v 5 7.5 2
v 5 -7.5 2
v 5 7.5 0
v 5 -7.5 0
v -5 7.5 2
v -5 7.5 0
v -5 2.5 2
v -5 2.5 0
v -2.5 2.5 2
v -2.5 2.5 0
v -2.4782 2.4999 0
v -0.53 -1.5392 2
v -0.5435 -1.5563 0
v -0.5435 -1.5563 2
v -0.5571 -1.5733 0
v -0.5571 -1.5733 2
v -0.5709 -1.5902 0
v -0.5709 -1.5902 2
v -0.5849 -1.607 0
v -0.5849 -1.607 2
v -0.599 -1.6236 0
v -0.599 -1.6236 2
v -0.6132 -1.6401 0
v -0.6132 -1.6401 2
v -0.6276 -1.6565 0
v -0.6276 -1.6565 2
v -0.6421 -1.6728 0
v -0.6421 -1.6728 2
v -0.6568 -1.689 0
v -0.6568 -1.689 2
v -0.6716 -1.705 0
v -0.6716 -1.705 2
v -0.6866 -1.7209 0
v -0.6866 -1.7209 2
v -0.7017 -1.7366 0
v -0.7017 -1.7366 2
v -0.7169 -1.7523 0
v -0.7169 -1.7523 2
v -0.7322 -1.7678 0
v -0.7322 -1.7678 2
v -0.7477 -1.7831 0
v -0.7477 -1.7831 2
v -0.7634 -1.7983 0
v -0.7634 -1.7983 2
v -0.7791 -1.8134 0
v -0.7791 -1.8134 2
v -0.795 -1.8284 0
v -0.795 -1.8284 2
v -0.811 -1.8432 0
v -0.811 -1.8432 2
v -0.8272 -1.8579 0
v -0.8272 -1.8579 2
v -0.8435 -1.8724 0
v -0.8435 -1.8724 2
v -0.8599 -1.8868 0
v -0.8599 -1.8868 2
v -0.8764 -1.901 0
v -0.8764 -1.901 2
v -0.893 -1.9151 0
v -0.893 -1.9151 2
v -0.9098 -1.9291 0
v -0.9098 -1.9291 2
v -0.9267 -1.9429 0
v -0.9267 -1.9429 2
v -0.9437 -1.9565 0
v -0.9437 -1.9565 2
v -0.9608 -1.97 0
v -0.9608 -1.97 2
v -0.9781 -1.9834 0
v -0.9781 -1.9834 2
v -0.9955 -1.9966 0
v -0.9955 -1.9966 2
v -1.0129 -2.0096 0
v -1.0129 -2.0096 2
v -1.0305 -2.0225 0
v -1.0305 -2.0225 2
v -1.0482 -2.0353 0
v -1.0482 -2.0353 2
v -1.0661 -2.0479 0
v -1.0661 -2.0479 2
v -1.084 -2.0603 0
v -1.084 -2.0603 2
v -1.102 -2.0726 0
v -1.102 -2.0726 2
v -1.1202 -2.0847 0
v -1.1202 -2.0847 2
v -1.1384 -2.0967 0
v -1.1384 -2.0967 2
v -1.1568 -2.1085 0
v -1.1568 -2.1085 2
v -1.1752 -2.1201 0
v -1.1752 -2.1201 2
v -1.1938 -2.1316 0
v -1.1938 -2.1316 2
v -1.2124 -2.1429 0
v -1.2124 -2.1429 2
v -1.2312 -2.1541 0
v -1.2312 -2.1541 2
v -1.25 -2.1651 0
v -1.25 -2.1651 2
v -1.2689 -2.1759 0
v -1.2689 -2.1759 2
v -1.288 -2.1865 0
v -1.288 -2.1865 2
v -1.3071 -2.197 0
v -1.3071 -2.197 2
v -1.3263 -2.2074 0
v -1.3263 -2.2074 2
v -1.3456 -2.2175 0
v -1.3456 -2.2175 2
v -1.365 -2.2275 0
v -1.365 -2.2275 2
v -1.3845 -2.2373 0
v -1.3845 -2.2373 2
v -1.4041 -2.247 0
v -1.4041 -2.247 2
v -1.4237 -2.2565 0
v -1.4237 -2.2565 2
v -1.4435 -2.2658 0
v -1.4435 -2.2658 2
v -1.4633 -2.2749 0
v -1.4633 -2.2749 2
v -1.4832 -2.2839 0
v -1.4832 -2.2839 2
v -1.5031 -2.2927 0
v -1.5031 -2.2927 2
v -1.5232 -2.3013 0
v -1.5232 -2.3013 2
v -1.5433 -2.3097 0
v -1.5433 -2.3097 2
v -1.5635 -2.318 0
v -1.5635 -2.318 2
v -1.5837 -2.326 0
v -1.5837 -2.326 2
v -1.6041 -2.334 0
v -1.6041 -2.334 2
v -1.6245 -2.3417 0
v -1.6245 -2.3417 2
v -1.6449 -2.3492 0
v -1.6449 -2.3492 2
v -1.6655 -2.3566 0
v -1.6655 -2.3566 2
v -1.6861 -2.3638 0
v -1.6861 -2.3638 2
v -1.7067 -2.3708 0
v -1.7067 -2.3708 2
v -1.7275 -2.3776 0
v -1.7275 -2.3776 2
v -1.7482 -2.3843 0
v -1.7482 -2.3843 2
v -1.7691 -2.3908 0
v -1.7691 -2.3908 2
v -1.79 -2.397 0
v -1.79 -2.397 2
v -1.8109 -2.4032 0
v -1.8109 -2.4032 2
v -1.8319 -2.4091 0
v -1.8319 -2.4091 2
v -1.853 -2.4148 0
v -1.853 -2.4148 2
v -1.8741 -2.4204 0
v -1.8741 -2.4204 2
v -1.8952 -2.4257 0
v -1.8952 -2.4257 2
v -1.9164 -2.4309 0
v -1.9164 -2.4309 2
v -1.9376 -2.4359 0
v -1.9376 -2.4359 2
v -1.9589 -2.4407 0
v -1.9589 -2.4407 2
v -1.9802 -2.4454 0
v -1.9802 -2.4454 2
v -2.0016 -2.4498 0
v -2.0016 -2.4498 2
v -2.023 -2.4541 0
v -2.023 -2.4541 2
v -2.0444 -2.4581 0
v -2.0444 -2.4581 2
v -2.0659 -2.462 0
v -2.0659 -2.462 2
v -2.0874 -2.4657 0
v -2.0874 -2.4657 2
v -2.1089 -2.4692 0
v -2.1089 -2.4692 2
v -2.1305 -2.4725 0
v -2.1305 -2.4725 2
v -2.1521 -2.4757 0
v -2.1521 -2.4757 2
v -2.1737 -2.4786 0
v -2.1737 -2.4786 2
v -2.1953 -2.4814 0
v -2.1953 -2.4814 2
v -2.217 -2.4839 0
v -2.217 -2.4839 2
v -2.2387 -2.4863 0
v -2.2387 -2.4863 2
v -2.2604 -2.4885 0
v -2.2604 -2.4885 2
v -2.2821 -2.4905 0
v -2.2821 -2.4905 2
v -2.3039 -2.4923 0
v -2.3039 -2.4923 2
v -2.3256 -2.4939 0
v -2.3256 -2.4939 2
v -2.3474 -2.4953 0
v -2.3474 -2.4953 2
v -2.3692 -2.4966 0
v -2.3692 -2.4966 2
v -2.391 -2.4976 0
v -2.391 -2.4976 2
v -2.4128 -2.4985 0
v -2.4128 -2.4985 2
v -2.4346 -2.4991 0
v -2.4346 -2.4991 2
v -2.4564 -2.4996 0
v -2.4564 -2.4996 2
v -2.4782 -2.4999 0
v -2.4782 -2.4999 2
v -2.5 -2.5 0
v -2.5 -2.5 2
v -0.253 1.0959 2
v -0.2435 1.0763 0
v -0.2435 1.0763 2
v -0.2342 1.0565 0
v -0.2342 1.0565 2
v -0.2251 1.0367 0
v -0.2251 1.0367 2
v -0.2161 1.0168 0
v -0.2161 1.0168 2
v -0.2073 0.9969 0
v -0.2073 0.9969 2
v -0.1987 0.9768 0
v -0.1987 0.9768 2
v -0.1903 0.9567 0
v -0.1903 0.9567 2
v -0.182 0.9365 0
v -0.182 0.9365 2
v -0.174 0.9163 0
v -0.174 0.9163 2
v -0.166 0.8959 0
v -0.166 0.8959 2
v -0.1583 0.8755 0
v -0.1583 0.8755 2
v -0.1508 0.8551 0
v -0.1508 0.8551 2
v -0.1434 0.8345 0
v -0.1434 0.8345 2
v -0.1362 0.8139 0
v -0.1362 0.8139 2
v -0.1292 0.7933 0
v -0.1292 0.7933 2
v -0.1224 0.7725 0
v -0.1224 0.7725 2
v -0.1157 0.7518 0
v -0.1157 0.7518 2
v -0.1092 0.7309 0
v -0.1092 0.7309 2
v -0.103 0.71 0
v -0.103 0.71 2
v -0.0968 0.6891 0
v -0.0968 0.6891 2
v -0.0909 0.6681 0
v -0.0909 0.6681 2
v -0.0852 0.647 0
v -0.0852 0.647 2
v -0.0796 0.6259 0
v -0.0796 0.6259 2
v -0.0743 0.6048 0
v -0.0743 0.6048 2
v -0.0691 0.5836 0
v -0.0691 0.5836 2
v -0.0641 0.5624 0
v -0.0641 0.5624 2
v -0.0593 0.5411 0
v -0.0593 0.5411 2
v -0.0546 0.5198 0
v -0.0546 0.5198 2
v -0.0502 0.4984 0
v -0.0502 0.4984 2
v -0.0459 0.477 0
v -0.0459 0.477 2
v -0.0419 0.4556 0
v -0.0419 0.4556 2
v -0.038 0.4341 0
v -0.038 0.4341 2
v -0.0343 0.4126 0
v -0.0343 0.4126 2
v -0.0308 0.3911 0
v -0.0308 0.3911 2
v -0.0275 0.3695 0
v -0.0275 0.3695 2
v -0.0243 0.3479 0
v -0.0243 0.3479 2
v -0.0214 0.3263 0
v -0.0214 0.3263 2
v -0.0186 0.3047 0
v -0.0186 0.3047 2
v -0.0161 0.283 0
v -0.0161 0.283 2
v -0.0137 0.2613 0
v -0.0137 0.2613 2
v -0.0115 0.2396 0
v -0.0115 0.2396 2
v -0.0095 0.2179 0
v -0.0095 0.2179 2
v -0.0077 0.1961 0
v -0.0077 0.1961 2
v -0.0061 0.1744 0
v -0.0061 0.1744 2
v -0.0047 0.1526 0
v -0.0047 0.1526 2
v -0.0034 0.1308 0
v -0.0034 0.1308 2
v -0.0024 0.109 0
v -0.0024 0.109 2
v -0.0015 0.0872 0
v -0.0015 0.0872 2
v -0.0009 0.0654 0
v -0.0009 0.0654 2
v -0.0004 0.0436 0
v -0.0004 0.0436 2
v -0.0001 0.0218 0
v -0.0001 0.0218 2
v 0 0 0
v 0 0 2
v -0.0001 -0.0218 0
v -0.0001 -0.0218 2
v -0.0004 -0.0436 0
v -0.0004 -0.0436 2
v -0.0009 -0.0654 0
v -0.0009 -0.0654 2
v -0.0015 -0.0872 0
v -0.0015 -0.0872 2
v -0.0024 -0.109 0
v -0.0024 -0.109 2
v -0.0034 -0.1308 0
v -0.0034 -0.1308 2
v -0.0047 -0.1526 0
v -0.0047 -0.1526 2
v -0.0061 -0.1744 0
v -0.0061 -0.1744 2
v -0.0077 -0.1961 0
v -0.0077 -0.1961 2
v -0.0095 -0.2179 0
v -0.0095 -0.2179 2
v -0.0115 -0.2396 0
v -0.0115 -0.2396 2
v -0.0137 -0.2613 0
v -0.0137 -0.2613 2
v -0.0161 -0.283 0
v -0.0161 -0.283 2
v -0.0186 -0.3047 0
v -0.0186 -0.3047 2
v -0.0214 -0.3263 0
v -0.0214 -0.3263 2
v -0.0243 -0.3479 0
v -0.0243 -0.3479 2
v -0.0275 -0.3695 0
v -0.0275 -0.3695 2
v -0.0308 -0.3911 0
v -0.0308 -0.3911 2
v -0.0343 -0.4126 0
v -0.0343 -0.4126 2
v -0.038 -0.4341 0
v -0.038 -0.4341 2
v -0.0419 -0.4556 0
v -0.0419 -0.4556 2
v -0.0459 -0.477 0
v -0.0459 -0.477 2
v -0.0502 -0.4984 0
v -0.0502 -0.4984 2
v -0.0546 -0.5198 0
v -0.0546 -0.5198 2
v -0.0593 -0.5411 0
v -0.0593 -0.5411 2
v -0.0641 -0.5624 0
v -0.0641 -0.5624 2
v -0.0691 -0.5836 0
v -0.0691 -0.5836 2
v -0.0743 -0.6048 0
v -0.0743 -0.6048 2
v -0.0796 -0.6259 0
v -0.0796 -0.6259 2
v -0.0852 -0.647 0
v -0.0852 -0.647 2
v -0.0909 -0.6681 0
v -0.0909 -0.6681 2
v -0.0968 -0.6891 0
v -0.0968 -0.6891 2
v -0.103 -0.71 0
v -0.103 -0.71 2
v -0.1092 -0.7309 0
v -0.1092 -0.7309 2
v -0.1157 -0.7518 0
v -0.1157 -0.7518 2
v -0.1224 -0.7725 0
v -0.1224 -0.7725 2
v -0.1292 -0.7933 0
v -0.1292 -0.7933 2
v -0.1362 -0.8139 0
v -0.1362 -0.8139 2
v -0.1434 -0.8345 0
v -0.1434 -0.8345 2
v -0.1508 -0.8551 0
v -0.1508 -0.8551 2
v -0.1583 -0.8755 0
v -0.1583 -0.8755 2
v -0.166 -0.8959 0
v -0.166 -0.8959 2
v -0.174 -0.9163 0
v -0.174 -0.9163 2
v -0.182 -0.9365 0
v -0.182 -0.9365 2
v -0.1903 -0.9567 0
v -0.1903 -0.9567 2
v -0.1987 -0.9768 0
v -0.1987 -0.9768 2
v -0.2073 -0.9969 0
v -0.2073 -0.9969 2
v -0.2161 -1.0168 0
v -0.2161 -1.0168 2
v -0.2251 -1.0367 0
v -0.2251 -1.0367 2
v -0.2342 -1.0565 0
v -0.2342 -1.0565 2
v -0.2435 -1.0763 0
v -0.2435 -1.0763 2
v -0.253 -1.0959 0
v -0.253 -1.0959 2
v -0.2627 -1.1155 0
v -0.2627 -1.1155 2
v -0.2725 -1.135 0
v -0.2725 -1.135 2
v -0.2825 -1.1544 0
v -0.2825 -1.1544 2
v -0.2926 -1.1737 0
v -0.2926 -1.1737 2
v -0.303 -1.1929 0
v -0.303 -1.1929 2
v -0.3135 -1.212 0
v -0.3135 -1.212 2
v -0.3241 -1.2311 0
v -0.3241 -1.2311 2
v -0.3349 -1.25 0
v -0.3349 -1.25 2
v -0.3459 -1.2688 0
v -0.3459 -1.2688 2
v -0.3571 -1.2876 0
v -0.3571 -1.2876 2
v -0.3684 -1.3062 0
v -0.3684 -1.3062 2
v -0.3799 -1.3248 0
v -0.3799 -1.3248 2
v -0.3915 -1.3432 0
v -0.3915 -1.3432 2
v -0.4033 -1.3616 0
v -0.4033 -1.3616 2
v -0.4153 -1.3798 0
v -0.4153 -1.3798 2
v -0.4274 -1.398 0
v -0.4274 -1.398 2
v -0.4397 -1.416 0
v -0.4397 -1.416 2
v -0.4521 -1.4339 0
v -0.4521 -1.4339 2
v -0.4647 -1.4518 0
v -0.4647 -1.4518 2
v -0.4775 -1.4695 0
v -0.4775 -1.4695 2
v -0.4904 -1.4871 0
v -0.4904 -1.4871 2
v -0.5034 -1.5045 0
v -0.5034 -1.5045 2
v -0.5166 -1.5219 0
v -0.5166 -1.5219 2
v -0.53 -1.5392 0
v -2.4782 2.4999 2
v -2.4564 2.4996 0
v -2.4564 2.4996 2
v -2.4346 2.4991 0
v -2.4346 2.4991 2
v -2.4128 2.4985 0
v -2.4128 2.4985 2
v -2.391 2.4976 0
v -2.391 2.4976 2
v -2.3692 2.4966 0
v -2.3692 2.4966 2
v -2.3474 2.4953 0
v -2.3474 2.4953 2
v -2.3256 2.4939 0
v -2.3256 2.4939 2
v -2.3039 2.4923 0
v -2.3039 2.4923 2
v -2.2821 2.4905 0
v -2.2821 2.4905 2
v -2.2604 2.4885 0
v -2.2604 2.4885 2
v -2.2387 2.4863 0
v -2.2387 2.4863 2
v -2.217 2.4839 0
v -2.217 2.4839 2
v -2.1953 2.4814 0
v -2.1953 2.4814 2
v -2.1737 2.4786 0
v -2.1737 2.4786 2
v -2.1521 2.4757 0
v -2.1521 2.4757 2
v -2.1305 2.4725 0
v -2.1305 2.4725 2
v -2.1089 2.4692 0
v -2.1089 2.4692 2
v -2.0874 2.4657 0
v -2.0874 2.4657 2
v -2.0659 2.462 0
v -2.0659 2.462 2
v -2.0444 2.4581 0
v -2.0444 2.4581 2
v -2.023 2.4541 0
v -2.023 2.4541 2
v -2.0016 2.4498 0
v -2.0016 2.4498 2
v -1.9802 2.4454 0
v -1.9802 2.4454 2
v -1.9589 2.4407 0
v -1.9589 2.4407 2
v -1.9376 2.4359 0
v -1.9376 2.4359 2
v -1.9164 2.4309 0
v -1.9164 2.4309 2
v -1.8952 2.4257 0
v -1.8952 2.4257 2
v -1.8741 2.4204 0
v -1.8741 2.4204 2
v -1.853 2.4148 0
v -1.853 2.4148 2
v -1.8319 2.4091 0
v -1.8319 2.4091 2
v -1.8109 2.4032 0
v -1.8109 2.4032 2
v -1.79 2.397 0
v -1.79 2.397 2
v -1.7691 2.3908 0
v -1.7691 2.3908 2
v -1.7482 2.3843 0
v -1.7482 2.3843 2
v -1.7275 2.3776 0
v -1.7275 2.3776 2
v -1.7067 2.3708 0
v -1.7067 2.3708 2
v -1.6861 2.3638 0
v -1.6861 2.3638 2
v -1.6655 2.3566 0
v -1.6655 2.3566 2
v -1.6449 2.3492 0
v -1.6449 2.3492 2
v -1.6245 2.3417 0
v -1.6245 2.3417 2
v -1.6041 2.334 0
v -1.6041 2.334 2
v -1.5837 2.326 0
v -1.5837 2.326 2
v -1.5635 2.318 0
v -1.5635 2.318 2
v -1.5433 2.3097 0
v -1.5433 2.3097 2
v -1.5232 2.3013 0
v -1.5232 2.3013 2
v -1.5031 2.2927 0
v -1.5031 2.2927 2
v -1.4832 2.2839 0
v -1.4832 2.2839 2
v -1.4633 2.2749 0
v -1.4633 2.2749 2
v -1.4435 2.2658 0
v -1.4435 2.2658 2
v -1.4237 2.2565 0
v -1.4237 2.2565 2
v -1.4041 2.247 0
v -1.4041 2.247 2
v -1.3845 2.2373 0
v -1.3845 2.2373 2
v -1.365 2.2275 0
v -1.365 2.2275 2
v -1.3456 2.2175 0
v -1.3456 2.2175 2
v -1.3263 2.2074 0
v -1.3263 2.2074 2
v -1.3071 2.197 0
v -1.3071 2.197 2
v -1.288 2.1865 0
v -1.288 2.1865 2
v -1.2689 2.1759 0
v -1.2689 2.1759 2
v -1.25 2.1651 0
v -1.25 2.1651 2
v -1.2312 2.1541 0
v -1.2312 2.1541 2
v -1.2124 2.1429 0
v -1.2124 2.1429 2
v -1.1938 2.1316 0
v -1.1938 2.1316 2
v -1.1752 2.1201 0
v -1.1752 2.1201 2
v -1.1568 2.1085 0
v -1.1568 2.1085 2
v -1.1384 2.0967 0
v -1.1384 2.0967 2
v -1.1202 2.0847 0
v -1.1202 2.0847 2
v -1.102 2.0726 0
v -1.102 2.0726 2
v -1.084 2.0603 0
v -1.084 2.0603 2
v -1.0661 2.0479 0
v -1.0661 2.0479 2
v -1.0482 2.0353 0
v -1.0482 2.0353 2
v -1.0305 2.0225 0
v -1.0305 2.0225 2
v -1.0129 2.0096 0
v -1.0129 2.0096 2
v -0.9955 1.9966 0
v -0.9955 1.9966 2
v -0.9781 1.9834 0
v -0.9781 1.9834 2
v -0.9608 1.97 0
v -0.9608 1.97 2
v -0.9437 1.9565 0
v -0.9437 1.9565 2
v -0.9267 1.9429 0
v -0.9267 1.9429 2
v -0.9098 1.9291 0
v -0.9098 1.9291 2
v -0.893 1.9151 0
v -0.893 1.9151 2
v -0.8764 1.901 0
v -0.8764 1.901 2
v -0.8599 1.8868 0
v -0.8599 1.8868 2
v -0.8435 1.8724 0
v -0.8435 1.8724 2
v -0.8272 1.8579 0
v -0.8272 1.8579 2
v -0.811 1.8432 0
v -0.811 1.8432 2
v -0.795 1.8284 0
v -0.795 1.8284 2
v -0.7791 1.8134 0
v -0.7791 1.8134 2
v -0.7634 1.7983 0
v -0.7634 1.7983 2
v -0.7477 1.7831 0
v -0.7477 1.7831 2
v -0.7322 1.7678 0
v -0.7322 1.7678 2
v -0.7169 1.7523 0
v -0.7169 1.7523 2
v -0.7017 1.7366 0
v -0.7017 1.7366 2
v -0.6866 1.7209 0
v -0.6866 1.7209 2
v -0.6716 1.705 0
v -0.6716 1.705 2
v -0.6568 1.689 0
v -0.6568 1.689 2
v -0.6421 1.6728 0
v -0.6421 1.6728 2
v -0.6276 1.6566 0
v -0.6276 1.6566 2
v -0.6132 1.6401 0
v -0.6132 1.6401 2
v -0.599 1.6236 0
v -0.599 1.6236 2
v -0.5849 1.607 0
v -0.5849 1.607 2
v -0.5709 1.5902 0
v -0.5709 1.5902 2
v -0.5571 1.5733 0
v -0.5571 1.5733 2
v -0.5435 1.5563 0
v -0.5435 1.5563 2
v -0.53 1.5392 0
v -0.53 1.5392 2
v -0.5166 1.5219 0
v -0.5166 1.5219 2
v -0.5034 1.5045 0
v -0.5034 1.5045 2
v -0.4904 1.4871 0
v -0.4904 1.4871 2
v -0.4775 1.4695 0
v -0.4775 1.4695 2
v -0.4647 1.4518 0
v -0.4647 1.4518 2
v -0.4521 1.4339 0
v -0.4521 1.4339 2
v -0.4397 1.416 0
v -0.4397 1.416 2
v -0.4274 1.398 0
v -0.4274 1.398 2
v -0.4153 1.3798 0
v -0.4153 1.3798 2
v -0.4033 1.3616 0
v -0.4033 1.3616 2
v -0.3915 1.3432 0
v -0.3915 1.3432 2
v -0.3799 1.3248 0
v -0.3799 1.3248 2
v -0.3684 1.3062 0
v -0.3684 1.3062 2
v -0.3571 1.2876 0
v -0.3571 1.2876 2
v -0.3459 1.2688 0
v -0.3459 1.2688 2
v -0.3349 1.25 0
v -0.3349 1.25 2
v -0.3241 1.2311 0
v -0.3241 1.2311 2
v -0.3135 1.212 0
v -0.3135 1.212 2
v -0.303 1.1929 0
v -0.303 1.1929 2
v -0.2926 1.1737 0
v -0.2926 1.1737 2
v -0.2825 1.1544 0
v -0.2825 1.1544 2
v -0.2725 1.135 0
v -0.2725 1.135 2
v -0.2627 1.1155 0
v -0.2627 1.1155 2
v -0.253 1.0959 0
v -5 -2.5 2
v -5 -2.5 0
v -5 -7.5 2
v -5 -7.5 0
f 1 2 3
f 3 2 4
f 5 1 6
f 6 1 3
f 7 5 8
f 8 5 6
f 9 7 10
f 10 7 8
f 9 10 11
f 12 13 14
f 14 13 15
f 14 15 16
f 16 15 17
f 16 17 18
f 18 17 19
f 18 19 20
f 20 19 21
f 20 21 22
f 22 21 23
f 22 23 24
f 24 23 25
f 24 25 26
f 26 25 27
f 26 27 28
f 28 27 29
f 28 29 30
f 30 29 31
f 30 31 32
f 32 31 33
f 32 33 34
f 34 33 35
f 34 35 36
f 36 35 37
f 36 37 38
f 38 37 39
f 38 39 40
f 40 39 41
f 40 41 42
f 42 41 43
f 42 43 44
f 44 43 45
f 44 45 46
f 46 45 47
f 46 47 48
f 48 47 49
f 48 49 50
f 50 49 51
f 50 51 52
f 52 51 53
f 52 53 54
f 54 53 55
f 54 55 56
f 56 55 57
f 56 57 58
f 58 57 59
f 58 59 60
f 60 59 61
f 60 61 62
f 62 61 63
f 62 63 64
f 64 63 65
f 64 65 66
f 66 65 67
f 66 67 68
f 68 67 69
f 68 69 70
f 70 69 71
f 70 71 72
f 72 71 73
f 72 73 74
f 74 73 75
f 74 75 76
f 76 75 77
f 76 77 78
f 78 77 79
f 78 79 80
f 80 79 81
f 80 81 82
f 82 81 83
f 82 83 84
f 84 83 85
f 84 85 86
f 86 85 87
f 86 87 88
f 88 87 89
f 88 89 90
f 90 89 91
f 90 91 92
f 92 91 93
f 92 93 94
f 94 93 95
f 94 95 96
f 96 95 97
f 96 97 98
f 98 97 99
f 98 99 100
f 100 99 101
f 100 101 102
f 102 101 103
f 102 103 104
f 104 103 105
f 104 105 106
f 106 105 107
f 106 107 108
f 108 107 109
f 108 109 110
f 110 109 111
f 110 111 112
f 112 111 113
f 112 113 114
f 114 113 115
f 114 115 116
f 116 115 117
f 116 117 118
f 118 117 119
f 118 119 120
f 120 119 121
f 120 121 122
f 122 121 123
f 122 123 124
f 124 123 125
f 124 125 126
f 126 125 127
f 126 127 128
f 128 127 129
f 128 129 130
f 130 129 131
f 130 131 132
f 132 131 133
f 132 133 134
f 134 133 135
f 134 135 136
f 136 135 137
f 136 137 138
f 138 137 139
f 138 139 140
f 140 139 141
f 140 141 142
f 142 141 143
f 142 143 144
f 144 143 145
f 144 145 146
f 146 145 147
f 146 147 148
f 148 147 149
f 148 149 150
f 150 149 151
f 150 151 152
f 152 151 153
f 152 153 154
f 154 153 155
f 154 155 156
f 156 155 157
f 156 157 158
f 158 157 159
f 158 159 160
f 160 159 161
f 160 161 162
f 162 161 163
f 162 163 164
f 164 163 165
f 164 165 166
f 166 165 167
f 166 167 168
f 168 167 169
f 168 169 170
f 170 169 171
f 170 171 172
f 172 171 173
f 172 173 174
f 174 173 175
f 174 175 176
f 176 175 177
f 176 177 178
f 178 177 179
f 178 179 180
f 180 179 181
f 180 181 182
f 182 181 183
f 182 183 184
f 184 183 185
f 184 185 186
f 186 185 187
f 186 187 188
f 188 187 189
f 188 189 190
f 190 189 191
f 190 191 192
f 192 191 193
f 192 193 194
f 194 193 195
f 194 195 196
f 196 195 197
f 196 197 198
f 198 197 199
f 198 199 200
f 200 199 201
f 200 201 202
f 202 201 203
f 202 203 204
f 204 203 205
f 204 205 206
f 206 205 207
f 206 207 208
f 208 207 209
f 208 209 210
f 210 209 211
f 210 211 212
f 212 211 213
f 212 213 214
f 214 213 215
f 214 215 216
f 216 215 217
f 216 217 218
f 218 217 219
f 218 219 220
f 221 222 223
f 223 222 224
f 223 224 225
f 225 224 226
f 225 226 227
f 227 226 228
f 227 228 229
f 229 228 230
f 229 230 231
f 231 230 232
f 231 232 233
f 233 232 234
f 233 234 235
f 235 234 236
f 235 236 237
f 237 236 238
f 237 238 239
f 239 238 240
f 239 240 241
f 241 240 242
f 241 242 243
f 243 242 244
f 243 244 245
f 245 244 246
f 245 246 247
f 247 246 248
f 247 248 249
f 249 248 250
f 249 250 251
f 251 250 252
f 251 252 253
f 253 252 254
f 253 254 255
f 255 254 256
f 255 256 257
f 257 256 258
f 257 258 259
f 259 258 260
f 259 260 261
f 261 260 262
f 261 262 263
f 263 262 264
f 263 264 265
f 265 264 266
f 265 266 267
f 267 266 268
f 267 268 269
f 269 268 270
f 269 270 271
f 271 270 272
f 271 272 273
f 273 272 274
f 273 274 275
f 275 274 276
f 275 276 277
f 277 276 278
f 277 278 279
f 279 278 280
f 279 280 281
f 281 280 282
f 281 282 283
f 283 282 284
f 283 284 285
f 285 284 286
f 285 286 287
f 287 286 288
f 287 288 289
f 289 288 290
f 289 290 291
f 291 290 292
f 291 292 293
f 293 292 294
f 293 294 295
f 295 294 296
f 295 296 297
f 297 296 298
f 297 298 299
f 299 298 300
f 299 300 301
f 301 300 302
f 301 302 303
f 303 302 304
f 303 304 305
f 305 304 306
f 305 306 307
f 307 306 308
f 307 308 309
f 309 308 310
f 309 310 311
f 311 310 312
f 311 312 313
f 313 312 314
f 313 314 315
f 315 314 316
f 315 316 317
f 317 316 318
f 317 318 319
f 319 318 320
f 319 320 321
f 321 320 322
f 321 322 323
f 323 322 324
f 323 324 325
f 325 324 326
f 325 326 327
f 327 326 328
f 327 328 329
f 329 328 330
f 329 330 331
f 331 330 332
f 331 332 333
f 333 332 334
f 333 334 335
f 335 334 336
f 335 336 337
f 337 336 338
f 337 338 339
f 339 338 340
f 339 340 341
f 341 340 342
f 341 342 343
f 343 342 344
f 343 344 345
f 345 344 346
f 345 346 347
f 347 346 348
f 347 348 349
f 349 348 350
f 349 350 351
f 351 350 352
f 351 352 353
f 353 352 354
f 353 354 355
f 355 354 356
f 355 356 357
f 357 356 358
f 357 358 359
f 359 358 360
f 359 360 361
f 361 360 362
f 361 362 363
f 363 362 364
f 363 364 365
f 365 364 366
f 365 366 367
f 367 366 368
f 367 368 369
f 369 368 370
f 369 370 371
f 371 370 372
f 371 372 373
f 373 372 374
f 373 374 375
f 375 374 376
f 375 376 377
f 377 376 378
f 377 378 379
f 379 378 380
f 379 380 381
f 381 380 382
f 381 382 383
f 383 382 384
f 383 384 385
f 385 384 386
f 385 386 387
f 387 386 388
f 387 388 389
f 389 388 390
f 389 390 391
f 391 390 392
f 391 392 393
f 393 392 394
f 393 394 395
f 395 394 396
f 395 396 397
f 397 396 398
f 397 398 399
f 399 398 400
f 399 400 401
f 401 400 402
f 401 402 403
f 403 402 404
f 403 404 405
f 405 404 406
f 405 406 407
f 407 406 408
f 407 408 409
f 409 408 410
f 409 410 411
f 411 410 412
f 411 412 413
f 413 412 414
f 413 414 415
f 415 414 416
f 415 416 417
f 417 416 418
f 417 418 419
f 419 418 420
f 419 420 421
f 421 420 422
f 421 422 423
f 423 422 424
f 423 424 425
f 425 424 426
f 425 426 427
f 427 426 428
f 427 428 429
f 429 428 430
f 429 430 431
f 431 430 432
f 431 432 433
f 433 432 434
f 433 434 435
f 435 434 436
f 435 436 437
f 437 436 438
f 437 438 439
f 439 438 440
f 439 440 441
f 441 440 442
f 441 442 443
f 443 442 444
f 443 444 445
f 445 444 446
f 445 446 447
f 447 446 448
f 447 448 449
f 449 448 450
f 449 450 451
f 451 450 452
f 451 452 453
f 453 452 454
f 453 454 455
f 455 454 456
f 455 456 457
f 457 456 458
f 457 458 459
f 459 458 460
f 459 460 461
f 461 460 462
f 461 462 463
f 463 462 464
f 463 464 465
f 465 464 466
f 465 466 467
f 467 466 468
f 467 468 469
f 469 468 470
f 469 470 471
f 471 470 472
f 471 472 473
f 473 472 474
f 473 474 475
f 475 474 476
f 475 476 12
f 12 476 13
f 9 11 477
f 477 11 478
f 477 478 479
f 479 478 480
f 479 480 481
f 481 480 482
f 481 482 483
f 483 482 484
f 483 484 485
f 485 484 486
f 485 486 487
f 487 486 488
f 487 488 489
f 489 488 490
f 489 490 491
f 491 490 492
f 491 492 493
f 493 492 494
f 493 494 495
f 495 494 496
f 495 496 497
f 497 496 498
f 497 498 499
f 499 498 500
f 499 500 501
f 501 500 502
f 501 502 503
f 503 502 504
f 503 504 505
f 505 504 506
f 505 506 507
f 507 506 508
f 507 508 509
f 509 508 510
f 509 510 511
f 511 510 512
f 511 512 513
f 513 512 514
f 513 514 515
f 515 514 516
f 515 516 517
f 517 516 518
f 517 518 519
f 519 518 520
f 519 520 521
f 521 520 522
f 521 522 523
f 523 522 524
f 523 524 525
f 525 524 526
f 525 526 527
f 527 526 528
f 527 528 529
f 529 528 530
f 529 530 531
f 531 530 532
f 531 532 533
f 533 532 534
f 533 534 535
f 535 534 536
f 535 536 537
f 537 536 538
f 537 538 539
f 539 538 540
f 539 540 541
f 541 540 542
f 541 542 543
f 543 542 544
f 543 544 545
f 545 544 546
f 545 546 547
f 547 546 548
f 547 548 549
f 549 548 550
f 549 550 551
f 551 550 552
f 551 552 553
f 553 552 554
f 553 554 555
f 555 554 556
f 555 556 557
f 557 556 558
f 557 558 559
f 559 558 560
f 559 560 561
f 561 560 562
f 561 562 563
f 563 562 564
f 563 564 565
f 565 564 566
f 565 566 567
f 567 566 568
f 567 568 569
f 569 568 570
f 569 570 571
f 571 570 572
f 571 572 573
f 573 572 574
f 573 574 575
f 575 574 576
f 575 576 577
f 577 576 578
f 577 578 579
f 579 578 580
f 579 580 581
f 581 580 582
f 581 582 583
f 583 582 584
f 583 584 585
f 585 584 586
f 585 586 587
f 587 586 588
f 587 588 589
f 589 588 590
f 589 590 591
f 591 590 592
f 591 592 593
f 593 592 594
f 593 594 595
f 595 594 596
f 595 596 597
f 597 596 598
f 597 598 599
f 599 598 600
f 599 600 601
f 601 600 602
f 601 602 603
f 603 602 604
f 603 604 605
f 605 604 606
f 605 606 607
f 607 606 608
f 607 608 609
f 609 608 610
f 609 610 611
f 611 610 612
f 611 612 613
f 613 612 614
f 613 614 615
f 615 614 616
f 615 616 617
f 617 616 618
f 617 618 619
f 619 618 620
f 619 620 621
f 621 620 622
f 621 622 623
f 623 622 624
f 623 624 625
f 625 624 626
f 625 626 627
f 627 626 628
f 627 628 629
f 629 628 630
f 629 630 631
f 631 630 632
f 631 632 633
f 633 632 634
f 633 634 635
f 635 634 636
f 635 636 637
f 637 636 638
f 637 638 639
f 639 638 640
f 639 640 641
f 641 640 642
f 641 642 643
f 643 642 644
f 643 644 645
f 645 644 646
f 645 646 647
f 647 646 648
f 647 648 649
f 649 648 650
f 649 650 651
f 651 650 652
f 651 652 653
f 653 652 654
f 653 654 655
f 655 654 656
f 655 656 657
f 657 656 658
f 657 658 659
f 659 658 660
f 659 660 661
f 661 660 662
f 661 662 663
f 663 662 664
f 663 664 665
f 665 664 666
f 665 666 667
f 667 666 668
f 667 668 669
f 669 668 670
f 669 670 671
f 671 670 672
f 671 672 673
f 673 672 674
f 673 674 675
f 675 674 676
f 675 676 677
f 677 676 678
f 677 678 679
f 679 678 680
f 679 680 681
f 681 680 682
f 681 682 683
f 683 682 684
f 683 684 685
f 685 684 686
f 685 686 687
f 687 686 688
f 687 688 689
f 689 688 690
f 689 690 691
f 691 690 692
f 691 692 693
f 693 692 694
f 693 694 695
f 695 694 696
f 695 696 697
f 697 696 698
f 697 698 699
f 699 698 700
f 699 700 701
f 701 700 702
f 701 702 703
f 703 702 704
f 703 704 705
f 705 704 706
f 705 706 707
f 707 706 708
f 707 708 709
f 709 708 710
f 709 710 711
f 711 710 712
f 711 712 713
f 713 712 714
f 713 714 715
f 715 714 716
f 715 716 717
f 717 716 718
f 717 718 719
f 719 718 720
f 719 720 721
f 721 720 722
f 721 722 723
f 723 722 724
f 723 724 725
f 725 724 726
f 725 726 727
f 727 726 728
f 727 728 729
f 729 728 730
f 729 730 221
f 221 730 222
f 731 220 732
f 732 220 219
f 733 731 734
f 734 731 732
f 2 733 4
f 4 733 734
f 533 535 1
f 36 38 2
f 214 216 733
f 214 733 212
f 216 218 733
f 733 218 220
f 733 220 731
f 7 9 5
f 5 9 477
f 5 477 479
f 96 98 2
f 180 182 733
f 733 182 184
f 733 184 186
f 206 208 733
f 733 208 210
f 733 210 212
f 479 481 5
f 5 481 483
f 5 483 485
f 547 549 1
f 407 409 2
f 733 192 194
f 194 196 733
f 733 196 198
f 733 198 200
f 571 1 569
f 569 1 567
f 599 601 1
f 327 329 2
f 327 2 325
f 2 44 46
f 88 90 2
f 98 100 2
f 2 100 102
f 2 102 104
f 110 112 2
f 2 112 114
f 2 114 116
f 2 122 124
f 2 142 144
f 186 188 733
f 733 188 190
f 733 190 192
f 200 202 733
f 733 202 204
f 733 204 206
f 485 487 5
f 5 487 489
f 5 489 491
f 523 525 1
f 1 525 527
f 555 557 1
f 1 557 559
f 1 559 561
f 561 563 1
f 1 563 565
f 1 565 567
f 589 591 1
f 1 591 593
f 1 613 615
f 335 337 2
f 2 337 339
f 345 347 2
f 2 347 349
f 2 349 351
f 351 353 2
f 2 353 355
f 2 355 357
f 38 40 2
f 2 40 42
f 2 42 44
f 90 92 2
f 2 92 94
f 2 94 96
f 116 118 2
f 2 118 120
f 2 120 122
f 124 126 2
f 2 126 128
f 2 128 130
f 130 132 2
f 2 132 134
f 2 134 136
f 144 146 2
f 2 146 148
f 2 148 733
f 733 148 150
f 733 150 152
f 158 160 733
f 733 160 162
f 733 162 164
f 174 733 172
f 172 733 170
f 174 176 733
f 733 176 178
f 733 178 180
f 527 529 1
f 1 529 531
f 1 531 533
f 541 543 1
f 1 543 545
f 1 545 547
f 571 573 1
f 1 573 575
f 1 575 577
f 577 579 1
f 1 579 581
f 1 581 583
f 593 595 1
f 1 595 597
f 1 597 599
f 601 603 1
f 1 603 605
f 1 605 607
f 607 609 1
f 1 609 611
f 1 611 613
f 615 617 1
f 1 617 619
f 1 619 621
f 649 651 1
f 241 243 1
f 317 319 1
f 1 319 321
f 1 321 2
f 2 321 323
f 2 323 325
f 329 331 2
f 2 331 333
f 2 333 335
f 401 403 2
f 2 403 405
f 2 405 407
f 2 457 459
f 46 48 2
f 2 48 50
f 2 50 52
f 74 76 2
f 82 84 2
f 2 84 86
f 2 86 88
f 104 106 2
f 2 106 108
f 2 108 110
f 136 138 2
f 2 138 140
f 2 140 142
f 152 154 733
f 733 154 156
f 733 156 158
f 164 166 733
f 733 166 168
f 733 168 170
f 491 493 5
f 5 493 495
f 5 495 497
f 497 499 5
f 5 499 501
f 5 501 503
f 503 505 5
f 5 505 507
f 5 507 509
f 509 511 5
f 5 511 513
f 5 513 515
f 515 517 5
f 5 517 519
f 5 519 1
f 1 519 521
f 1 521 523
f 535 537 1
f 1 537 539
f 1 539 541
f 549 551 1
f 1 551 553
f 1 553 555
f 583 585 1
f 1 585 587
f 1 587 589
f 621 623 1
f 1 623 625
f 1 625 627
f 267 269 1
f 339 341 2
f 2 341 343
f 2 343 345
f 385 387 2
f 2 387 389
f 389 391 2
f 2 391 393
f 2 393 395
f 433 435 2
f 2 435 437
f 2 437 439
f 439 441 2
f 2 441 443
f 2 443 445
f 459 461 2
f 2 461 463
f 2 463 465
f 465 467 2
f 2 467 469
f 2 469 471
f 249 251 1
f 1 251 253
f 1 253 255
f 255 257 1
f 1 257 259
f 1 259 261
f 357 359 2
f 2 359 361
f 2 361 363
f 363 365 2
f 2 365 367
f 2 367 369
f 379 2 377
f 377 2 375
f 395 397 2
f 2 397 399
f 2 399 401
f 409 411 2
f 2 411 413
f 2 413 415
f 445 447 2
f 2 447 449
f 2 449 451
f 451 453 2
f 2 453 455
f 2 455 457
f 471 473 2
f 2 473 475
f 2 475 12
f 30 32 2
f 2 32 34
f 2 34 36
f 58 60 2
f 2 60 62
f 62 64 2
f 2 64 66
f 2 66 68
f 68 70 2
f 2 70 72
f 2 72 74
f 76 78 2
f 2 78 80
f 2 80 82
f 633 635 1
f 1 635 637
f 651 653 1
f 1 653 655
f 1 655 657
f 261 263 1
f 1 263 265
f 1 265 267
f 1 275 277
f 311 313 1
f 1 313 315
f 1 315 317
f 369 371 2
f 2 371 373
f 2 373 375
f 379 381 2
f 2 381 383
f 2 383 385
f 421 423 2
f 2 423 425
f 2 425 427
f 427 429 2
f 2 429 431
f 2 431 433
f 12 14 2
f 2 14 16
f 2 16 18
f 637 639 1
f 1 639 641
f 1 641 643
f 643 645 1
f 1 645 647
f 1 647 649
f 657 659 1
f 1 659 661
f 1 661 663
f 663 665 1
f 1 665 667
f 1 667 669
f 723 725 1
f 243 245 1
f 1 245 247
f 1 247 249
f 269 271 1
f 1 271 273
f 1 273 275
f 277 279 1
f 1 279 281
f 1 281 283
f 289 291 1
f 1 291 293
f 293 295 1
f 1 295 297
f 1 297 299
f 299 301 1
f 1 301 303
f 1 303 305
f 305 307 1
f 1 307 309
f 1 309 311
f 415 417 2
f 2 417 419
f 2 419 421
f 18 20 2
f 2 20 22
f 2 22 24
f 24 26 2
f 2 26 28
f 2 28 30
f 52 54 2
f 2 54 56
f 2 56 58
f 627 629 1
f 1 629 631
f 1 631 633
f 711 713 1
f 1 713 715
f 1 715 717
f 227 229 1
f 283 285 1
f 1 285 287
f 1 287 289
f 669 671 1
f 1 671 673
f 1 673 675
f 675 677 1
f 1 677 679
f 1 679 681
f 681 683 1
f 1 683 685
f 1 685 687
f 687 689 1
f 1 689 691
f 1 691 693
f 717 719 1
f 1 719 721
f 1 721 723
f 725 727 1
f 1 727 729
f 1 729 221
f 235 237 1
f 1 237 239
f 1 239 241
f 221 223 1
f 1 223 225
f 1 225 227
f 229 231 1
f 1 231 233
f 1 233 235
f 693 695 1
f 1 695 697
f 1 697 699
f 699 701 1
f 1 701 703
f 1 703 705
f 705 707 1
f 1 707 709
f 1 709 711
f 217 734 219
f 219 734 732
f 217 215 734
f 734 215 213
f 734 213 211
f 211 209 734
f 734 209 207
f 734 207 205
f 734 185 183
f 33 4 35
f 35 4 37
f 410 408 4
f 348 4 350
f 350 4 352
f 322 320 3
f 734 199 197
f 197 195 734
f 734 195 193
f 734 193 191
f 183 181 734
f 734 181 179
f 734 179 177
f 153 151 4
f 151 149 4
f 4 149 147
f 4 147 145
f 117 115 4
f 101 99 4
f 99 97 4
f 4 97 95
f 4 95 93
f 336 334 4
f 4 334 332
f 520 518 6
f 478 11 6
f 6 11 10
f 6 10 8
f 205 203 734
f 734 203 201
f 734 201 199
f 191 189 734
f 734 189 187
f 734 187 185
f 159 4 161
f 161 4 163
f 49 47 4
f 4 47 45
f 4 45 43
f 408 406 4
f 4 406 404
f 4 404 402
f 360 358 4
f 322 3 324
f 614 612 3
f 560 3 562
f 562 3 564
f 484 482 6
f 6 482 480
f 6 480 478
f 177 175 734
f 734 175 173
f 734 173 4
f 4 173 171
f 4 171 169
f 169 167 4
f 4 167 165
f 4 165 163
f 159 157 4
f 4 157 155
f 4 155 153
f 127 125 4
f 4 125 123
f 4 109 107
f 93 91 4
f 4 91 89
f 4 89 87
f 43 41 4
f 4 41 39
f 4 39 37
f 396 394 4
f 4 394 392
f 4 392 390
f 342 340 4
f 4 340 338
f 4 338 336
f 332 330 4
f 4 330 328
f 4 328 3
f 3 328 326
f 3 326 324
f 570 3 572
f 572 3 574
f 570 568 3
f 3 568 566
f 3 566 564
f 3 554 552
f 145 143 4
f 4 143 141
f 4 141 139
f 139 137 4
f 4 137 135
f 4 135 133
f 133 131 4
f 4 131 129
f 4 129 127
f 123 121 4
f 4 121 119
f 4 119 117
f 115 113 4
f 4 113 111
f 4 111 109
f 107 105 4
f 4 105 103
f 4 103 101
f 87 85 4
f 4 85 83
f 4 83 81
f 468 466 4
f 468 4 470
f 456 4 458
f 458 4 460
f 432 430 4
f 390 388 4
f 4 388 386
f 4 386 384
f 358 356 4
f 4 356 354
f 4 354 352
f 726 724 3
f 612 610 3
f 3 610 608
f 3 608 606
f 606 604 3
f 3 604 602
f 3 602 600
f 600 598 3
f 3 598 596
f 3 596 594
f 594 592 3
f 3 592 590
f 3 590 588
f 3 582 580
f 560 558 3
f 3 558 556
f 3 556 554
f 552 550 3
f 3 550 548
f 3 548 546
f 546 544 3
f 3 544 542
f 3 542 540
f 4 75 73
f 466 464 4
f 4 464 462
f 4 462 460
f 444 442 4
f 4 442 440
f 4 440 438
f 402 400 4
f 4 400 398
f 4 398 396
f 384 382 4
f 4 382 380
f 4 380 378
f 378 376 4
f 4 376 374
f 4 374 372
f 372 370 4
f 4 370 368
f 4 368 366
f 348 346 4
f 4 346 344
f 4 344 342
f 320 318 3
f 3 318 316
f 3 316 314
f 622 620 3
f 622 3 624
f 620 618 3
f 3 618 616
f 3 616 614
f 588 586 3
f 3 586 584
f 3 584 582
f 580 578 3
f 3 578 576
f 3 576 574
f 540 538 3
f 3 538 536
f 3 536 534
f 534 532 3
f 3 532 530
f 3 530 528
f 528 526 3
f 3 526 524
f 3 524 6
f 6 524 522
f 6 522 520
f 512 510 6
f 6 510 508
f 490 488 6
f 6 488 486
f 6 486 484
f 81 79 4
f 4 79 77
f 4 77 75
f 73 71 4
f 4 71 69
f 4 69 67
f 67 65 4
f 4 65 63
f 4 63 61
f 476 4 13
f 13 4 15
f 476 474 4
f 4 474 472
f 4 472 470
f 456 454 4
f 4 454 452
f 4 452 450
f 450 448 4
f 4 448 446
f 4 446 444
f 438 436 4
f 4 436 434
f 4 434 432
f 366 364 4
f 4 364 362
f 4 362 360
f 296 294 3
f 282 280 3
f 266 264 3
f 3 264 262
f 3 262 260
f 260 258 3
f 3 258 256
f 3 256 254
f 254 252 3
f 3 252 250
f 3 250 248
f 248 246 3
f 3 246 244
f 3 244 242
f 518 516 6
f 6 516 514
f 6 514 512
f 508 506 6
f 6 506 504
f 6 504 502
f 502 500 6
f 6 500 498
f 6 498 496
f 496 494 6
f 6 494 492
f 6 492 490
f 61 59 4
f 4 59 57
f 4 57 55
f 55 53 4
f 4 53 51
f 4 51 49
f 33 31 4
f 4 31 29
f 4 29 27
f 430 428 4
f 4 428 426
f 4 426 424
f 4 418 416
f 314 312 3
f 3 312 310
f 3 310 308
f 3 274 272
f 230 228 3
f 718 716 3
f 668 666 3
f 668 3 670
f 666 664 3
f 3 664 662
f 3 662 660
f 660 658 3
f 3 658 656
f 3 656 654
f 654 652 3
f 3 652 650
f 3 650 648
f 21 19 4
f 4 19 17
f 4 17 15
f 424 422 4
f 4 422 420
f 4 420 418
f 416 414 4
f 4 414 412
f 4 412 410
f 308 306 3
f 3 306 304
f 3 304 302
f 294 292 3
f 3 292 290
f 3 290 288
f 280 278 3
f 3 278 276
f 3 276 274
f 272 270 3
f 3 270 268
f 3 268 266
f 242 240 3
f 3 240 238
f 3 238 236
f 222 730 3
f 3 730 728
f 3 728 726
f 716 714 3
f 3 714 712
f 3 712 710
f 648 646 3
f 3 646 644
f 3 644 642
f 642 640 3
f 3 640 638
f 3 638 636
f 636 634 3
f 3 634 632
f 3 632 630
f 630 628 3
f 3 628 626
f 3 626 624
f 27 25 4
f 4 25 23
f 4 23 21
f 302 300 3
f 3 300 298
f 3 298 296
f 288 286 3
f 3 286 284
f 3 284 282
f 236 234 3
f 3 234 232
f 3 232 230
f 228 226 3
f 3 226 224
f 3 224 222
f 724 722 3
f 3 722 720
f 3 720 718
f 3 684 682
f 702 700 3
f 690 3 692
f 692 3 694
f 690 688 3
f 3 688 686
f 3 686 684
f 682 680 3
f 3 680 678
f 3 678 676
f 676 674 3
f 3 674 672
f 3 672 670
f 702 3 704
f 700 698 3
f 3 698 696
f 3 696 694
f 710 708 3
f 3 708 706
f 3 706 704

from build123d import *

# Parameters (mm, degrees)
BOSS_EXTRUDE1_DEPTH = 2


with BuildPart() as part:
    # Sketch1 → Boss-Extrude1 (new body)
    with BuildSketch(Plane.XY):
        with BuildLine():
            Line((-5, 2.5), (-5, 7.5))
            Line((-5, 7.5), (5, 7.5))
            Line((5, 7.5), (5, -7.5))
            Line((5, -7.5), (-5, -7.5))
            Line((-5, -7.5), (-5, -2.5))
            Line((-5, -2.5), (-2.5, -2.5))
            ThreePointArc((-2.5, -2.5), (0, 0), (-2.5, 2.5))
            Line((-2.5, 2.5), (-5, 2.5))
        make_face()
    extrude(amount=BOSS_EXTRUDE1_DEPTH)


solid = part.part
